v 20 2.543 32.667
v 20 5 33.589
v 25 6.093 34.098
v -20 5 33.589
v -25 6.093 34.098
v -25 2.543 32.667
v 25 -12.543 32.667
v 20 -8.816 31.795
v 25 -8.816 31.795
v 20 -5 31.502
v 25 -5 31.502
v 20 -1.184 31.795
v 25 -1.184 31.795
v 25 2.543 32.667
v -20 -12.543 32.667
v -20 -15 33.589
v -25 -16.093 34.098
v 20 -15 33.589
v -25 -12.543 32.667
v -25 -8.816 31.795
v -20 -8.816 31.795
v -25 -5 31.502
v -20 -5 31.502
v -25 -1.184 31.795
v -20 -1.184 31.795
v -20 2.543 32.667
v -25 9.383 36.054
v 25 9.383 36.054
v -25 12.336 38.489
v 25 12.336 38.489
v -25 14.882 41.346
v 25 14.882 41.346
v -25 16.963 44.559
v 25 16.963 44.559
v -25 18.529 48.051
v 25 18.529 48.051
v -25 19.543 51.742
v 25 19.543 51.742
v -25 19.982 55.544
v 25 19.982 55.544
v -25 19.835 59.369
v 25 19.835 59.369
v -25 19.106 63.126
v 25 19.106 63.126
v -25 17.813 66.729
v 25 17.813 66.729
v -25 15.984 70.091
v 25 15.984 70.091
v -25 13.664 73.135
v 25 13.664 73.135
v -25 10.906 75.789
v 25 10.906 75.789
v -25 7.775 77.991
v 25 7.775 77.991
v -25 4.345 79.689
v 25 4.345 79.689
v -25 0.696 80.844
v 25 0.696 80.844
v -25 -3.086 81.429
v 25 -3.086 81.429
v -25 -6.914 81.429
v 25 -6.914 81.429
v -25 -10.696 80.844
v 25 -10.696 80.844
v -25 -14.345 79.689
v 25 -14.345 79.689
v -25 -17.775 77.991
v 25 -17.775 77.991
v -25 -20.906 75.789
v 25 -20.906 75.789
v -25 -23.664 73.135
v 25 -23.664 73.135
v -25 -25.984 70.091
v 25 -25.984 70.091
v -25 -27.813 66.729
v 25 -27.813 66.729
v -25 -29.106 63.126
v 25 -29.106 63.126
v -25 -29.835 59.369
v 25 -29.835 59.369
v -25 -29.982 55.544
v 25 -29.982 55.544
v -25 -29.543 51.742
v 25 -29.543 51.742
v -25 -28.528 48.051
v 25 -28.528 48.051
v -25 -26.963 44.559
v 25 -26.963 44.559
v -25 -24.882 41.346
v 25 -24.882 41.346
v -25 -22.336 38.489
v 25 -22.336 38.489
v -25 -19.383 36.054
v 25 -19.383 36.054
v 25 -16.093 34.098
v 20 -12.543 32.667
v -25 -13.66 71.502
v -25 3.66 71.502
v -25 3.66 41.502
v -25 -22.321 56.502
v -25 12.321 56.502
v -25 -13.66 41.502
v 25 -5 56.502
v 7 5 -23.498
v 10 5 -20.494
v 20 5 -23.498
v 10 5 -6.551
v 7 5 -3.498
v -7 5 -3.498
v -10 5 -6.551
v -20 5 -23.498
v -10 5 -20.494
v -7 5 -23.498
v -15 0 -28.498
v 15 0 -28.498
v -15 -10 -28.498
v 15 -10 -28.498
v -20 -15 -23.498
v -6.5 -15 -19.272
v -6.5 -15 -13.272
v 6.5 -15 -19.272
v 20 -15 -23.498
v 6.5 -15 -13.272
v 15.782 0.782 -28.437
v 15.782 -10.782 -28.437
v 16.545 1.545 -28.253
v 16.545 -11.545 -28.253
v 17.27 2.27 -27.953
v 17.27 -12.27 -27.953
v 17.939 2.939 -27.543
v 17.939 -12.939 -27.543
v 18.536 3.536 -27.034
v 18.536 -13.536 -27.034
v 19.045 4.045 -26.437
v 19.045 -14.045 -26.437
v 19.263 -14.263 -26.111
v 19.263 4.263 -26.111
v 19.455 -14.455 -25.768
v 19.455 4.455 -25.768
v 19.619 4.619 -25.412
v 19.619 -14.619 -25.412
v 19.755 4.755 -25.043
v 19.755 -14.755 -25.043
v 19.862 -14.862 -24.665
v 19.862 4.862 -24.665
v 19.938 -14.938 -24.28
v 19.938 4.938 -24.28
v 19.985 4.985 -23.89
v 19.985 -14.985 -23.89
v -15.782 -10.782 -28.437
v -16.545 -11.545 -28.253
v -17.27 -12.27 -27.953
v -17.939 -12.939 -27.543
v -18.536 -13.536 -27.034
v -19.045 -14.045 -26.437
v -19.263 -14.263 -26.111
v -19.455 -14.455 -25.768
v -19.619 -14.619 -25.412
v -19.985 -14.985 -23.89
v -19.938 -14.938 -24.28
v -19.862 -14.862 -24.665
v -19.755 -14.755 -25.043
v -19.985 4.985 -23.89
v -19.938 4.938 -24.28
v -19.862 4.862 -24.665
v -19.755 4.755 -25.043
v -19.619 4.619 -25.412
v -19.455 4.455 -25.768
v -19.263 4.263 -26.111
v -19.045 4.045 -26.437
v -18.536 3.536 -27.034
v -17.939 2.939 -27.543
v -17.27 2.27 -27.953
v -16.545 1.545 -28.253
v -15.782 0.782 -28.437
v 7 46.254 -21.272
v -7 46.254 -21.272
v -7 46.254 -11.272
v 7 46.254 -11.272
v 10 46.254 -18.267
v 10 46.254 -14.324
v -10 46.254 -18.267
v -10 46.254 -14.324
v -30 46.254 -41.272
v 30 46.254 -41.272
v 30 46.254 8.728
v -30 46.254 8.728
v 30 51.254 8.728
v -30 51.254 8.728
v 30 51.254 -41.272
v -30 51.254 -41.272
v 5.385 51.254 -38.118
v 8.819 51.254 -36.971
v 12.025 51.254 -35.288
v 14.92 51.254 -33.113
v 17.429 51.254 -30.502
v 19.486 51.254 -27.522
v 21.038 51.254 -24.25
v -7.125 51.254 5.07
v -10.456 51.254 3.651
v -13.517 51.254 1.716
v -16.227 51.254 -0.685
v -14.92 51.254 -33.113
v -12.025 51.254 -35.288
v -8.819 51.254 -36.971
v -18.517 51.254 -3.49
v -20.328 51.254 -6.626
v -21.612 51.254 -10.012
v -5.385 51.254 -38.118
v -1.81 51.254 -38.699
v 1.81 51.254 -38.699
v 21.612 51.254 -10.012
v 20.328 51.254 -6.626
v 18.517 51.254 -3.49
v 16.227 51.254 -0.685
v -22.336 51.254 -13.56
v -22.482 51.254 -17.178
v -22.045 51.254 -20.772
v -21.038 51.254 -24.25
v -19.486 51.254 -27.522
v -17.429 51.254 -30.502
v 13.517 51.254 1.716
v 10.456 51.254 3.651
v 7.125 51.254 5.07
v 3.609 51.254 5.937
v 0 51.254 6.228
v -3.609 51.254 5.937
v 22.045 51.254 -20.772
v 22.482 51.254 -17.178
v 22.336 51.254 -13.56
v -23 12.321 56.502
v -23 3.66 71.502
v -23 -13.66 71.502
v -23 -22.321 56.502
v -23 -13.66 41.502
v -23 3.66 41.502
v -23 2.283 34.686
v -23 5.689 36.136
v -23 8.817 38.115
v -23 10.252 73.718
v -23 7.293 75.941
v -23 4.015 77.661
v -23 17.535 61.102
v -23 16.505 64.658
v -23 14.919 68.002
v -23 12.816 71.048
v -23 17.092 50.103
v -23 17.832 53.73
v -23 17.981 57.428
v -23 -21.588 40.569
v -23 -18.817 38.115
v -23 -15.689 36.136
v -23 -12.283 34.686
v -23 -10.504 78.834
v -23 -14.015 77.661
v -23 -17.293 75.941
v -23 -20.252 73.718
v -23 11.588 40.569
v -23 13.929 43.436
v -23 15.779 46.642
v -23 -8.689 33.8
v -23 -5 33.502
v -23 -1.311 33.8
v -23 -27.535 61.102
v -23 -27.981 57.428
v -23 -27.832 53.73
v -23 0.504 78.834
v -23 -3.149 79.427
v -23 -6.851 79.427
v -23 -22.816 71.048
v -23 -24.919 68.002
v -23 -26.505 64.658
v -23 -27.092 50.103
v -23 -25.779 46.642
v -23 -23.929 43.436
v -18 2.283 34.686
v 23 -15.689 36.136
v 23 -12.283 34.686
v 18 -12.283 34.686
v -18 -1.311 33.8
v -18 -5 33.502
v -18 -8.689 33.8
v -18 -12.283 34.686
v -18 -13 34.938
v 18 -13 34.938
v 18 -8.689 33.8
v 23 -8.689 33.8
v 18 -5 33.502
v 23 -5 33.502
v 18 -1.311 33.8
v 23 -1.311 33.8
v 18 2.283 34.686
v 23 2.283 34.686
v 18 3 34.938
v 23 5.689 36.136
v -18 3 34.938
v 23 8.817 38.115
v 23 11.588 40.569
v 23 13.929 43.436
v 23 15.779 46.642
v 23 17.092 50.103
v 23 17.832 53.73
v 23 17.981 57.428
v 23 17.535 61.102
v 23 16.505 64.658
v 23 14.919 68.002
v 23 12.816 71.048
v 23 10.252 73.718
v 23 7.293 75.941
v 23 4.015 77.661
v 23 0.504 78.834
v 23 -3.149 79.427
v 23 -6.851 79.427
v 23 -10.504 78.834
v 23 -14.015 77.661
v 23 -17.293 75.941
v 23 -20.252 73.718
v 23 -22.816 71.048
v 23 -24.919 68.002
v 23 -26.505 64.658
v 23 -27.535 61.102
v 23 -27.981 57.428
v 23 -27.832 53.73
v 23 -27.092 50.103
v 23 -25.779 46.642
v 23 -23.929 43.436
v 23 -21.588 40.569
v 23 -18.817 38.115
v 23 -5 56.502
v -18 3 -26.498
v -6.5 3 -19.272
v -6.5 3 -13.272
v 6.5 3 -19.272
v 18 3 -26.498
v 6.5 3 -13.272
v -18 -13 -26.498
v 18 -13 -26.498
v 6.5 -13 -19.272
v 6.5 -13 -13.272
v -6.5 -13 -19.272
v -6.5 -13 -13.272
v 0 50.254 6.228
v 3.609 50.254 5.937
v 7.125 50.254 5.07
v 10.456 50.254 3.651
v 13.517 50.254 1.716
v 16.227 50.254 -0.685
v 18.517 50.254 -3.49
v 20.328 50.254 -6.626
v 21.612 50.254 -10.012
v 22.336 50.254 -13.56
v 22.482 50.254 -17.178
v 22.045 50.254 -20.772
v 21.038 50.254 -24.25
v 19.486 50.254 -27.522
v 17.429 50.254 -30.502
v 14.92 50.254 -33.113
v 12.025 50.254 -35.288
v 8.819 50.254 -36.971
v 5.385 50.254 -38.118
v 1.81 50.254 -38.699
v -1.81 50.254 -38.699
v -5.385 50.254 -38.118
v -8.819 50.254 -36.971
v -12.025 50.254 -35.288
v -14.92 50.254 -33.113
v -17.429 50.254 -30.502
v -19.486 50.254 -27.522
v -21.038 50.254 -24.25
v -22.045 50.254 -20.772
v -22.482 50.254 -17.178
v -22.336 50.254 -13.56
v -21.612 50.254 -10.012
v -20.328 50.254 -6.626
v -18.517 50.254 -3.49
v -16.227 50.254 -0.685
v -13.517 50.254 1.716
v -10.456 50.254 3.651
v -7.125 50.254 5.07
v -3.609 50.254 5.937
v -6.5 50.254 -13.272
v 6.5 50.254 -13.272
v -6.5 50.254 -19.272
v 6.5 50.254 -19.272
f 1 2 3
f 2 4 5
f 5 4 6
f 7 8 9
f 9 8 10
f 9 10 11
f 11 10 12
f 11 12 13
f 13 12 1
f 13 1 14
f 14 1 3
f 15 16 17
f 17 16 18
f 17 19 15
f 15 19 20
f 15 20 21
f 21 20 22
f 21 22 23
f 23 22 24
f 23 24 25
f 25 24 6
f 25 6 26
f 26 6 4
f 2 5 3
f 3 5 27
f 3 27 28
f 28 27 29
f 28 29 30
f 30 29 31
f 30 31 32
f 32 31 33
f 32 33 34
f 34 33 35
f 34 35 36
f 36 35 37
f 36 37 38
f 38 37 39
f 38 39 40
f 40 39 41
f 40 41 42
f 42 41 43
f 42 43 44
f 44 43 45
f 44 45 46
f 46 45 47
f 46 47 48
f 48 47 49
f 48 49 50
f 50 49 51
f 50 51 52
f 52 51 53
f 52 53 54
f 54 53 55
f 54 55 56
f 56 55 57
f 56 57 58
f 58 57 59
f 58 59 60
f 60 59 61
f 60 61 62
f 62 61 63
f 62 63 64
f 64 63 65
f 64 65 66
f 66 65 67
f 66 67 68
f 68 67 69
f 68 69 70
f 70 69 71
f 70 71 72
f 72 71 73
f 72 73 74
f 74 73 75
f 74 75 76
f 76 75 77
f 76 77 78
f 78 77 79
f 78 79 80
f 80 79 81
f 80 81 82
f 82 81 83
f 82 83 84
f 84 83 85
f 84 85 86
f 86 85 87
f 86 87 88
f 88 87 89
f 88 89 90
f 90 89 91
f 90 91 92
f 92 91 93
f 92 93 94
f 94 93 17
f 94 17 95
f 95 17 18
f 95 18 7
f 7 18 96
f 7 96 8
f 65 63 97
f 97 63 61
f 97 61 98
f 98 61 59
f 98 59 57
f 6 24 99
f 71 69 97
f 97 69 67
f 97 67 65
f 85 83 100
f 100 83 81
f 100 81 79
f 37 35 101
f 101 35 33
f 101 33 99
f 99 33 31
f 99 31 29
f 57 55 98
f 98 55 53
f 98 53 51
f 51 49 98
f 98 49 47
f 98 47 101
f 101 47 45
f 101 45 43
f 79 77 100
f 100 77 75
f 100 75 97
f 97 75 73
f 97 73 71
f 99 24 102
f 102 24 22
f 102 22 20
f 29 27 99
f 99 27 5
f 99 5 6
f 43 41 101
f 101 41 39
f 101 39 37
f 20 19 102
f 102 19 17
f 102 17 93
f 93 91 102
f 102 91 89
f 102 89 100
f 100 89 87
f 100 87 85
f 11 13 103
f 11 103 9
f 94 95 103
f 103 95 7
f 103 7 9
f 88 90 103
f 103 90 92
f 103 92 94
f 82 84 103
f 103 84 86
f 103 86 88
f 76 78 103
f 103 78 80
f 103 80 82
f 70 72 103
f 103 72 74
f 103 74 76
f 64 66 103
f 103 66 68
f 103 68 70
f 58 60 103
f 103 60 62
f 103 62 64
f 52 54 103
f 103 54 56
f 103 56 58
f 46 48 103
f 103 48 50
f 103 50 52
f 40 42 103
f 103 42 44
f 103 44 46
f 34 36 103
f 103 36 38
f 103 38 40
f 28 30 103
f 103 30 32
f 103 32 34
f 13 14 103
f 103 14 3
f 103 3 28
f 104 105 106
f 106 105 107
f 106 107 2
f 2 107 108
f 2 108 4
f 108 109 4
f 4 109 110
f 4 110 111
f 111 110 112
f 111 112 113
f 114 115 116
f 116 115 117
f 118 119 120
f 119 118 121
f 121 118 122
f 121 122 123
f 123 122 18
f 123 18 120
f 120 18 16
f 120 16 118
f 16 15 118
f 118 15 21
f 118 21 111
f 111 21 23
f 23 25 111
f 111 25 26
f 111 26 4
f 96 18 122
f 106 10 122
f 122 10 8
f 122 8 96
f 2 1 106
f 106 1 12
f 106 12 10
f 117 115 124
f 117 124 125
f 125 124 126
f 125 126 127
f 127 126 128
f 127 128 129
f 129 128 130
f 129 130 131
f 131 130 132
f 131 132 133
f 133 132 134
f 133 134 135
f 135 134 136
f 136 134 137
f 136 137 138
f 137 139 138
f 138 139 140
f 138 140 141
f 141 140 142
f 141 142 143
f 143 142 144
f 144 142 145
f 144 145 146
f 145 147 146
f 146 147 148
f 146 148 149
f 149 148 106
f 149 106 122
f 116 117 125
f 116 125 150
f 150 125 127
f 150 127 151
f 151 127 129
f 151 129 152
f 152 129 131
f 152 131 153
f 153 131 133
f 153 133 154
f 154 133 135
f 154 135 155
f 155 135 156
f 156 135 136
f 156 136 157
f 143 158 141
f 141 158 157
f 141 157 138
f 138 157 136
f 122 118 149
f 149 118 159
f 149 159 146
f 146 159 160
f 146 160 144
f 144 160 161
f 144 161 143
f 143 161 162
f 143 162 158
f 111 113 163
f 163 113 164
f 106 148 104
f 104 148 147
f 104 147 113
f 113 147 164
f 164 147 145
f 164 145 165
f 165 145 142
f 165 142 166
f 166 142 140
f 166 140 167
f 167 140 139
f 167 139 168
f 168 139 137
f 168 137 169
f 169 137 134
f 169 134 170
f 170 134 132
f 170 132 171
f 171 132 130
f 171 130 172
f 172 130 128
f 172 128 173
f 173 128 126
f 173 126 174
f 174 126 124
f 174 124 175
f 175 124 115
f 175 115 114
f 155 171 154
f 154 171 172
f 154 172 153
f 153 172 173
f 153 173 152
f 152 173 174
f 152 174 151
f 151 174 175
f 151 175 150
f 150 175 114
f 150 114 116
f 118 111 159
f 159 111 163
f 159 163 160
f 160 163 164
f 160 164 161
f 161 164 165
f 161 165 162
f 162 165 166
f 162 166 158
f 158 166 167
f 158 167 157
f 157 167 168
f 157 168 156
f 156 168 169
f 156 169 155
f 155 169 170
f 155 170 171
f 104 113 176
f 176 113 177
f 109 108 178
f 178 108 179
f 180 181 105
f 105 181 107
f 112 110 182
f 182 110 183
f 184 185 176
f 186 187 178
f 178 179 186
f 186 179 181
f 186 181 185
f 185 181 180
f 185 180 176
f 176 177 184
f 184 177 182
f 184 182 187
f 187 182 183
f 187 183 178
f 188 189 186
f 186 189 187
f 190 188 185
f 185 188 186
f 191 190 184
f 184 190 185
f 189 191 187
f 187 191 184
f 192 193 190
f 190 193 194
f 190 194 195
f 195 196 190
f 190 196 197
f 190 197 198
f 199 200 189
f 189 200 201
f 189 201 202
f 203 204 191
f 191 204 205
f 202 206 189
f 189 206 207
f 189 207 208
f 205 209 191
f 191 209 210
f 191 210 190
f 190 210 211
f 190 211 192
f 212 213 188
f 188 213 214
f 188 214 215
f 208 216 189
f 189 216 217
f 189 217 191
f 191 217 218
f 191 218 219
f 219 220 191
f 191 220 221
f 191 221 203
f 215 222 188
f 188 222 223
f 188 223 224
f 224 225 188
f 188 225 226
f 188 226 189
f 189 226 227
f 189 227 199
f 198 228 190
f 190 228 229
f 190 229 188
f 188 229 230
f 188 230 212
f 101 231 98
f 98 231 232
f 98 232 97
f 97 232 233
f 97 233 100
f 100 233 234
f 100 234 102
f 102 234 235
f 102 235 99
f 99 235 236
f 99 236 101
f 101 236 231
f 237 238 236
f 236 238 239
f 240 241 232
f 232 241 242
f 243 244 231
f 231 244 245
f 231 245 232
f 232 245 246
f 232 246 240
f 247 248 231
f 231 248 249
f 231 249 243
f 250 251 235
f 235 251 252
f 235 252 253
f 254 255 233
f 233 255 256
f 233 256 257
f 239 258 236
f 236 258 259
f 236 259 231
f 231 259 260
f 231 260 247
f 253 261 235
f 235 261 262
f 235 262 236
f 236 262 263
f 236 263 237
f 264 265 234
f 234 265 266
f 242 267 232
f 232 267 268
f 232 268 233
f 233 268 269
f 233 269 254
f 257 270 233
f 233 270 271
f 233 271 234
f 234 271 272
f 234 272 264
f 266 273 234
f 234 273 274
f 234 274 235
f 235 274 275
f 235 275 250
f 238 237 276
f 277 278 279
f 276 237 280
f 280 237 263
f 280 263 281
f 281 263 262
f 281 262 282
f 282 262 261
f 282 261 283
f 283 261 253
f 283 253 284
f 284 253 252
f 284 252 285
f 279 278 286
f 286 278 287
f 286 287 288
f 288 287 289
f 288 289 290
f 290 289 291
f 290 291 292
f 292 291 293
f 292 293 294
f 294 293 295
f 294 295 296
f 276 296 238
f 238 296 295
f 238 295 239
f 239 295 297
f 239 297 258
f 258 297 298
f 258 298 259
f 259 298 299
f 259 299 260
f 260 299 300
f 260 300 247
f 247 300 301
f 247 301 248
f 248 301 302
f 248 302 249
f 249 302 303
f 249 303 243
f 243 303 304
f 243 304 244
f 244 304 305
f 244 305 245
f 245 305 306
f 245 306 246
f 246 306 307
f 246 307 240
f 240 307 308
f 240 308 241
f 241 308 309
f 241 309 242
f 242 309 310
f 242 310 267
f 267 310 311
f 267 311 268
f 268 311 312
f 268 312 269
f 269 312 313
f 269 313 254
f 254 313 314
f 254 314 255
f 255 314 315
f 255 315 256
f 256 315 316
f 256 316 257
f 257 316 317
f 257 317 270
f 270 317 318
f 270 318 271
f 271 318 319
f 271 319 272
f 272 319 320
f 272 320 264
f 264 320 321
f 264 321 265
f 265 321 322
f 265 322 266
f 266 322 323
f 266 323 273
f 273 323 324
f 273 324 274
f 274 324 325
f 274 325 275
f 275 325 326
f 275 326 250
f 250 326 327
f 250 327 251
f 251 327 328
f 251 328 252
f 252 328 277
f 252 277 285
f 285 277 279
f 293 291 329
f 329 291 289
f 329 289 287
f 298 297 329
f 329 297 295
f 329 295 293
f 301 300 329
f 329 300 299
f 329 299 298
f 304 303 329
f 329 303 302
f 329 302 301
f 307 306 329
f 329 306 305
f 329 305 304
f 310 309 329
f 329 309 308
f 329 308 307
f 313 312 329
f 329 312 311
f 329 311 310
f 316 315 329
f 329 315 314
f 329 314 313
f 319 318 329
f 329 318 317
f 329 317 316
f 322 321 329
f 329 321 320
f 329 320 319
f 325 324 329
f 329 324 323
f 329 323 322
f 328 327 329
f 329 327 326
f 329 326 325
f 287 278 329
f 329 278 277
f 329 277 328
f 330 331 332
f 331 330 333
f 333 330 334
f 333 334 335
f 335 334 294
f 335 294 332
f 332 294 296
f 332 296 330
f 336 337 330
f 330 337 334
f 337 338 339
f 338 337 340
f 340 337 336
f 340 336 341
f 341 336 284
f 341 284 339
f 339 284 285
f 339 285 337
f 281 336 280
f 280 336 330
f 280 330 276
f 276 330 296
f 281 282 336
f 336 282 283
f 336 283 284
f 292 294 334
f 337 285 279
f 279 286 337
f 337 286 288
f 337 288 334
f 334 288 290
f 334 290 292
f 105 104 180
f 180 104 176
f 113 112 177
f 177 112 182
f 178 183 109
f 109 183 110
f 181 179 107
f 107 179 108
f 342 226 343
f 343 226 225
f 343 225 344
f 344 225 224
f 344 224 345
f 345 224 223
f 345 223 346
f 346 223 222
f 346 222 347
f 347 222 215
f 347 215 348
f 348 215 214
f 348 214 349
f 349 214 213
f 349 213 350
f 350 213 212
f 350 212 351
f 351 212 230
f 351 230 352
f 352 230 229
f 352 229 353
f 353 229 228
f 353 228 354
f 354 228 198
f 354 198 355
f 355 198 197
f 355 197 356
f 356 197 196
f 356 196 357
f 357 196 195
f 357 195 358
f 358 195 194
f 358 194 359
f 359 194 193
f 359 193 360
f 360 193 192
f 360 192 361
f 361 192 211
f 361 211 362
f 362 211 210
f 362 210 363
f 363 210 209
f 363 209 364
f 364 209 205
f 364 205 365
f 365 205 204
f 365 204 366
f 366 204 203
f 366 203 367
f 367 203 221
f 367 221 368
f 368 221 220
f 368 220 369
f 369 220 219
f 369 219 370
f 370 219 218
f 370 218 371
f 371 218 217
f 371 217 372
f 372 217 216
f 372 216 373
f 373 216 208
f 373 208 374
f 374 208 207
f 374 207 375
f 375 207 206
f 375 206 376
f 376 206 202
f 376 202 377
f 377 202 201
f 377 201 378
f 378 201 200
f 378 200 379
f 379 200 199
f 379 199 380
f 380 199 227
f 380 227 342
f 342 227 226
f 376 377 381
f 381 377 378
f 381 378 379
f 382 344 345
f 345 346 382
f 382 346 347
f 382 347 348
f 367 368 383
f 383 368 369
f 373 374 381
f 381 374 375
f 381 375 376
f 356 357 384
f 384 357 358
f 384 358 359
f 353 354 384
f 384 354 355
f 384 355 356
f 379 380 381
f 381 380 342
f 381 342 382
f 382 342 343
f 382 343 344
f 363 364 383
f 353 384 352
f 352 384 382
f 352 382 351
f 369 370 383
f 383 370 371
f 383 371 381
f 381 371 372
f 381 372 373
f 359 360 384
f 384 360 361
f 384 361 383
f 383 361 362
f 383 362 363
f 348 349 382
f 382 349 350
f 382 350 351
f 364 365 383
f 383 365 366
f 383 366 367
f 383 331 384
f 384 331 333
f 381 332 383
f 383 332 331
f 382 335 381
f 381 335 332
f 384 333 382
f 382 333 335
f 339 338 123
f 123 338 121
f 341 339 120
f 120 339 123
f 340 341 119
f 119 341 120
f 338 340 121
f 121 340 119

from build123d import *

# Parameters (mm, degrees)
BOSS_EXTRUDE1_DEPTH      = 25
BOSS_EXTRUDE1_DEPTH_BACK = 25
SKETCH1_R                = 25
BOSS_EXTRUDE4_DEPTH      = 20
BOSS_EXTRUDE4_DEPTH_BACK = 20
SKETCH9_W                = 85
SKETCH9_H                = 20
SHELL3_START             = -18
SHELL3_DEPTH             = 36
SHELL3_START_2           = -23
SHELL3_2_OUTLINE_R       = 23
SHELL3_2_DEPTH           = 46
FILLET2_R                = 5
BOSS_EXTRUDE5_DEPTH      = 10
BOSS_EXTRUDE5_DEPTH_BACK = 10
SKETCH5_W                = 60
SKETCH5_H                = 50
BOSS_EXTRUDE3_DEPTH      = 5
CUT_EXTRUDE2_REACH       = 112.881
CHAMFER2_SIZE            = 3
SKETCH13_R               = 22.5
CUT_EXTRUDE4_DEPTH       = 1
SKETCH15_W               = 13
SKETCH15_H               = 6
CUT_EXTRUDE10_DEPTH      = 119.931868873


# Read off the part's stored shape, not the designer's step: Shell3
with BuildPart() as part:
    # Sketch1 → Boss-Extrude1 (new, two sides: drawn at the far end of the back side and taken through both)
    with BuildSketch(Plane(origin=(0, 0, 0), x_dir=(0, 0, -1), z_dir=(1, 0, 0)).offset(-BOSS_EXTRUDE1_DEPTH_BACK)):
        with Locations((-56.501901141, -5)):
            Circle(SKETCH1_R)
    extrude(amount=BOSS_EXTRUDE1_DEPTH + BOSS_EXTRUDE1_DEPTH_BACK)

    # Sketch9 → Boss-Extrude4 (add, two sides: drawn at the far end of the back side and taken through both)
    with BuildSketch(Plane(origin=(0, 0, 0), x_dir=(0, 0, -1), z_dir=(1, 0, 0)).offset(-BOSS_EXTRUDE4_DEPTH_BACK)):
        with Locations((-14.001901141, -5)):
            Rectangle(SKETCH9_W, SKETCH9_H)
    extrude(amount=BOSS_EXTRUDE4_DEPTH + BOSS_EXTRUDE4_DEPTH_BACK)

    # Shell3 outline → Shell3 (cut)
    with BuildSketch(Plane.YZ.offset(SHELL3_START)):
        with BuildLine():
            ThreePointArc((3, 34.938042488), (-5, 79.501901141), (-13, 34.938042488))
            Line((-13, 34.938042488), (-13, -26.498098859))
            Line((-13, -26.498098859), (3, -26.498098859))
            Line((3, -26.498098859), (3, 34.938042488))
        make_face()
    extrude(amount=SHELL3_DEPTH, mode=Mode.SUBTRACT)

    # Shell3 2 outline → Shell3 2 (cut)
    with BuildSketch(Plane.YZ.offset(SHELL3_START_2)):
        with Locations((-5, 56.501901141)):
            Circle(SHELL3_2_OUTLINE_R)
    extrude(amount=SHELL3_2_DEPTH, mode=Mode.SUBTRACT)

    # Fillet2
    fillet2_edges = [part.edges().sort_by_distance(p)[0] for p in [
        (0, 5, -28.498098859),
        (-20, -5, -28.498098859),
        (0, -15, -28.498098859),
        (20, -5, -28.498098859),
    ]]
    fillet(fillet2_edges, radius=FILLET2_R)

    # Sketch11 → Boss-Extrude5 (add, two sides: drawn at the far end of the back side and taken through both)
    with BuildSketch(Plane.ZY.offset(-BOSS_EXTRUDE5_DEPTH_BACK)):
        Polygon((-3.498098859, 5), (-11.271686446, 46.254104782), (-21.271686446, 46.254104782), (-23.498098859, 5), align=None)
    extrude(amount=BOSS_EXTRUDE5_DEPTH + BOSS_EXTRUDE5_DEPTH_BACK)

    # Sketch5 → Boss-Extrude3 (add)
    with BuildSketch(Plane(origin=(0, 46.254104782, 0), x_dir=(1, 0, 0), z_dir=(0, 1, 0))):
        with Locations((0, 16.271686446)):
            Rectangle(SKETCH5_W, SKETCH5_H)
    extrude(amount=BOSS_EXTRUDE3_DEPTH)

    # Sketch8 → Cut-Extrude2 (cut, up to next)
    with BuildSketch(Plane.ZY.offset(25), mode=Mode.PRIVATE) as cut_extrude2_sk1:
        Polygon((56.501901141, 12.320508076), (41.501901141, 3.660254038), (41.501901141, -13.660254038), (56.501901141, -22.320508076), (71.501901141, -13.660254038), (71.501901141, 3.660254038), align=None)
    cut_extrude2_tool1 = extrude(cut_extrude2_sk1.sketch, amount=-CUT_EXTRUDE2_REACH, mode=Mode.PRIVATE) & part.part
    add(cut_extrude2_tool1.solids().sort_by_distance((-25, -5, 56.501901))[0], mode=Mode.SUBTRACT)

    # Chamfer2
    chamfer2_edges = [part.edges().sort_by_distance(p)[0] for p in [
        (10, 25.627052391, -22.384892652),
        (10, 25.627052391, -7.384892652),
        (-10, 25.627052391, -7.384892652),
        (-10, 25.627052391, -22.384892652),
    ]]
    chamfer(chamfer2_edges, length=CHAMFER2_SIZE)

    # Sketch13 → Cut-Extrude4 (cut)
    with BuildSketch(Plane(origin=(0, 51.254104782, 0), x_dir=(1, 0, 0), z_dir=(0, 1, 0))):
        with Locations(Location((0, 16.271686446, 0), (0, 0, 270))):
            Circle(SKETCH13_R)
    extrude(amount=-CUT_EXTRUDE4_DEPTH, mode=Mode.SUBTRACT)

    # Sketch15 → Cut-Extrude10 (cut, through all)
    with BuildSketch(Plane(origin=(0, 51.254104782, 0), x_dir=(1, 0, 0), z_dir=(0, 1, 0))):
        with Locations((0, 16.271686446)):
            Rectangle(SKETCH15_W, SKETCH15_H)
    extrude(amount=-CUT_EXTRUDE10_DEPTH, mode=Mode.SUBTRACT)


solid = part.part
